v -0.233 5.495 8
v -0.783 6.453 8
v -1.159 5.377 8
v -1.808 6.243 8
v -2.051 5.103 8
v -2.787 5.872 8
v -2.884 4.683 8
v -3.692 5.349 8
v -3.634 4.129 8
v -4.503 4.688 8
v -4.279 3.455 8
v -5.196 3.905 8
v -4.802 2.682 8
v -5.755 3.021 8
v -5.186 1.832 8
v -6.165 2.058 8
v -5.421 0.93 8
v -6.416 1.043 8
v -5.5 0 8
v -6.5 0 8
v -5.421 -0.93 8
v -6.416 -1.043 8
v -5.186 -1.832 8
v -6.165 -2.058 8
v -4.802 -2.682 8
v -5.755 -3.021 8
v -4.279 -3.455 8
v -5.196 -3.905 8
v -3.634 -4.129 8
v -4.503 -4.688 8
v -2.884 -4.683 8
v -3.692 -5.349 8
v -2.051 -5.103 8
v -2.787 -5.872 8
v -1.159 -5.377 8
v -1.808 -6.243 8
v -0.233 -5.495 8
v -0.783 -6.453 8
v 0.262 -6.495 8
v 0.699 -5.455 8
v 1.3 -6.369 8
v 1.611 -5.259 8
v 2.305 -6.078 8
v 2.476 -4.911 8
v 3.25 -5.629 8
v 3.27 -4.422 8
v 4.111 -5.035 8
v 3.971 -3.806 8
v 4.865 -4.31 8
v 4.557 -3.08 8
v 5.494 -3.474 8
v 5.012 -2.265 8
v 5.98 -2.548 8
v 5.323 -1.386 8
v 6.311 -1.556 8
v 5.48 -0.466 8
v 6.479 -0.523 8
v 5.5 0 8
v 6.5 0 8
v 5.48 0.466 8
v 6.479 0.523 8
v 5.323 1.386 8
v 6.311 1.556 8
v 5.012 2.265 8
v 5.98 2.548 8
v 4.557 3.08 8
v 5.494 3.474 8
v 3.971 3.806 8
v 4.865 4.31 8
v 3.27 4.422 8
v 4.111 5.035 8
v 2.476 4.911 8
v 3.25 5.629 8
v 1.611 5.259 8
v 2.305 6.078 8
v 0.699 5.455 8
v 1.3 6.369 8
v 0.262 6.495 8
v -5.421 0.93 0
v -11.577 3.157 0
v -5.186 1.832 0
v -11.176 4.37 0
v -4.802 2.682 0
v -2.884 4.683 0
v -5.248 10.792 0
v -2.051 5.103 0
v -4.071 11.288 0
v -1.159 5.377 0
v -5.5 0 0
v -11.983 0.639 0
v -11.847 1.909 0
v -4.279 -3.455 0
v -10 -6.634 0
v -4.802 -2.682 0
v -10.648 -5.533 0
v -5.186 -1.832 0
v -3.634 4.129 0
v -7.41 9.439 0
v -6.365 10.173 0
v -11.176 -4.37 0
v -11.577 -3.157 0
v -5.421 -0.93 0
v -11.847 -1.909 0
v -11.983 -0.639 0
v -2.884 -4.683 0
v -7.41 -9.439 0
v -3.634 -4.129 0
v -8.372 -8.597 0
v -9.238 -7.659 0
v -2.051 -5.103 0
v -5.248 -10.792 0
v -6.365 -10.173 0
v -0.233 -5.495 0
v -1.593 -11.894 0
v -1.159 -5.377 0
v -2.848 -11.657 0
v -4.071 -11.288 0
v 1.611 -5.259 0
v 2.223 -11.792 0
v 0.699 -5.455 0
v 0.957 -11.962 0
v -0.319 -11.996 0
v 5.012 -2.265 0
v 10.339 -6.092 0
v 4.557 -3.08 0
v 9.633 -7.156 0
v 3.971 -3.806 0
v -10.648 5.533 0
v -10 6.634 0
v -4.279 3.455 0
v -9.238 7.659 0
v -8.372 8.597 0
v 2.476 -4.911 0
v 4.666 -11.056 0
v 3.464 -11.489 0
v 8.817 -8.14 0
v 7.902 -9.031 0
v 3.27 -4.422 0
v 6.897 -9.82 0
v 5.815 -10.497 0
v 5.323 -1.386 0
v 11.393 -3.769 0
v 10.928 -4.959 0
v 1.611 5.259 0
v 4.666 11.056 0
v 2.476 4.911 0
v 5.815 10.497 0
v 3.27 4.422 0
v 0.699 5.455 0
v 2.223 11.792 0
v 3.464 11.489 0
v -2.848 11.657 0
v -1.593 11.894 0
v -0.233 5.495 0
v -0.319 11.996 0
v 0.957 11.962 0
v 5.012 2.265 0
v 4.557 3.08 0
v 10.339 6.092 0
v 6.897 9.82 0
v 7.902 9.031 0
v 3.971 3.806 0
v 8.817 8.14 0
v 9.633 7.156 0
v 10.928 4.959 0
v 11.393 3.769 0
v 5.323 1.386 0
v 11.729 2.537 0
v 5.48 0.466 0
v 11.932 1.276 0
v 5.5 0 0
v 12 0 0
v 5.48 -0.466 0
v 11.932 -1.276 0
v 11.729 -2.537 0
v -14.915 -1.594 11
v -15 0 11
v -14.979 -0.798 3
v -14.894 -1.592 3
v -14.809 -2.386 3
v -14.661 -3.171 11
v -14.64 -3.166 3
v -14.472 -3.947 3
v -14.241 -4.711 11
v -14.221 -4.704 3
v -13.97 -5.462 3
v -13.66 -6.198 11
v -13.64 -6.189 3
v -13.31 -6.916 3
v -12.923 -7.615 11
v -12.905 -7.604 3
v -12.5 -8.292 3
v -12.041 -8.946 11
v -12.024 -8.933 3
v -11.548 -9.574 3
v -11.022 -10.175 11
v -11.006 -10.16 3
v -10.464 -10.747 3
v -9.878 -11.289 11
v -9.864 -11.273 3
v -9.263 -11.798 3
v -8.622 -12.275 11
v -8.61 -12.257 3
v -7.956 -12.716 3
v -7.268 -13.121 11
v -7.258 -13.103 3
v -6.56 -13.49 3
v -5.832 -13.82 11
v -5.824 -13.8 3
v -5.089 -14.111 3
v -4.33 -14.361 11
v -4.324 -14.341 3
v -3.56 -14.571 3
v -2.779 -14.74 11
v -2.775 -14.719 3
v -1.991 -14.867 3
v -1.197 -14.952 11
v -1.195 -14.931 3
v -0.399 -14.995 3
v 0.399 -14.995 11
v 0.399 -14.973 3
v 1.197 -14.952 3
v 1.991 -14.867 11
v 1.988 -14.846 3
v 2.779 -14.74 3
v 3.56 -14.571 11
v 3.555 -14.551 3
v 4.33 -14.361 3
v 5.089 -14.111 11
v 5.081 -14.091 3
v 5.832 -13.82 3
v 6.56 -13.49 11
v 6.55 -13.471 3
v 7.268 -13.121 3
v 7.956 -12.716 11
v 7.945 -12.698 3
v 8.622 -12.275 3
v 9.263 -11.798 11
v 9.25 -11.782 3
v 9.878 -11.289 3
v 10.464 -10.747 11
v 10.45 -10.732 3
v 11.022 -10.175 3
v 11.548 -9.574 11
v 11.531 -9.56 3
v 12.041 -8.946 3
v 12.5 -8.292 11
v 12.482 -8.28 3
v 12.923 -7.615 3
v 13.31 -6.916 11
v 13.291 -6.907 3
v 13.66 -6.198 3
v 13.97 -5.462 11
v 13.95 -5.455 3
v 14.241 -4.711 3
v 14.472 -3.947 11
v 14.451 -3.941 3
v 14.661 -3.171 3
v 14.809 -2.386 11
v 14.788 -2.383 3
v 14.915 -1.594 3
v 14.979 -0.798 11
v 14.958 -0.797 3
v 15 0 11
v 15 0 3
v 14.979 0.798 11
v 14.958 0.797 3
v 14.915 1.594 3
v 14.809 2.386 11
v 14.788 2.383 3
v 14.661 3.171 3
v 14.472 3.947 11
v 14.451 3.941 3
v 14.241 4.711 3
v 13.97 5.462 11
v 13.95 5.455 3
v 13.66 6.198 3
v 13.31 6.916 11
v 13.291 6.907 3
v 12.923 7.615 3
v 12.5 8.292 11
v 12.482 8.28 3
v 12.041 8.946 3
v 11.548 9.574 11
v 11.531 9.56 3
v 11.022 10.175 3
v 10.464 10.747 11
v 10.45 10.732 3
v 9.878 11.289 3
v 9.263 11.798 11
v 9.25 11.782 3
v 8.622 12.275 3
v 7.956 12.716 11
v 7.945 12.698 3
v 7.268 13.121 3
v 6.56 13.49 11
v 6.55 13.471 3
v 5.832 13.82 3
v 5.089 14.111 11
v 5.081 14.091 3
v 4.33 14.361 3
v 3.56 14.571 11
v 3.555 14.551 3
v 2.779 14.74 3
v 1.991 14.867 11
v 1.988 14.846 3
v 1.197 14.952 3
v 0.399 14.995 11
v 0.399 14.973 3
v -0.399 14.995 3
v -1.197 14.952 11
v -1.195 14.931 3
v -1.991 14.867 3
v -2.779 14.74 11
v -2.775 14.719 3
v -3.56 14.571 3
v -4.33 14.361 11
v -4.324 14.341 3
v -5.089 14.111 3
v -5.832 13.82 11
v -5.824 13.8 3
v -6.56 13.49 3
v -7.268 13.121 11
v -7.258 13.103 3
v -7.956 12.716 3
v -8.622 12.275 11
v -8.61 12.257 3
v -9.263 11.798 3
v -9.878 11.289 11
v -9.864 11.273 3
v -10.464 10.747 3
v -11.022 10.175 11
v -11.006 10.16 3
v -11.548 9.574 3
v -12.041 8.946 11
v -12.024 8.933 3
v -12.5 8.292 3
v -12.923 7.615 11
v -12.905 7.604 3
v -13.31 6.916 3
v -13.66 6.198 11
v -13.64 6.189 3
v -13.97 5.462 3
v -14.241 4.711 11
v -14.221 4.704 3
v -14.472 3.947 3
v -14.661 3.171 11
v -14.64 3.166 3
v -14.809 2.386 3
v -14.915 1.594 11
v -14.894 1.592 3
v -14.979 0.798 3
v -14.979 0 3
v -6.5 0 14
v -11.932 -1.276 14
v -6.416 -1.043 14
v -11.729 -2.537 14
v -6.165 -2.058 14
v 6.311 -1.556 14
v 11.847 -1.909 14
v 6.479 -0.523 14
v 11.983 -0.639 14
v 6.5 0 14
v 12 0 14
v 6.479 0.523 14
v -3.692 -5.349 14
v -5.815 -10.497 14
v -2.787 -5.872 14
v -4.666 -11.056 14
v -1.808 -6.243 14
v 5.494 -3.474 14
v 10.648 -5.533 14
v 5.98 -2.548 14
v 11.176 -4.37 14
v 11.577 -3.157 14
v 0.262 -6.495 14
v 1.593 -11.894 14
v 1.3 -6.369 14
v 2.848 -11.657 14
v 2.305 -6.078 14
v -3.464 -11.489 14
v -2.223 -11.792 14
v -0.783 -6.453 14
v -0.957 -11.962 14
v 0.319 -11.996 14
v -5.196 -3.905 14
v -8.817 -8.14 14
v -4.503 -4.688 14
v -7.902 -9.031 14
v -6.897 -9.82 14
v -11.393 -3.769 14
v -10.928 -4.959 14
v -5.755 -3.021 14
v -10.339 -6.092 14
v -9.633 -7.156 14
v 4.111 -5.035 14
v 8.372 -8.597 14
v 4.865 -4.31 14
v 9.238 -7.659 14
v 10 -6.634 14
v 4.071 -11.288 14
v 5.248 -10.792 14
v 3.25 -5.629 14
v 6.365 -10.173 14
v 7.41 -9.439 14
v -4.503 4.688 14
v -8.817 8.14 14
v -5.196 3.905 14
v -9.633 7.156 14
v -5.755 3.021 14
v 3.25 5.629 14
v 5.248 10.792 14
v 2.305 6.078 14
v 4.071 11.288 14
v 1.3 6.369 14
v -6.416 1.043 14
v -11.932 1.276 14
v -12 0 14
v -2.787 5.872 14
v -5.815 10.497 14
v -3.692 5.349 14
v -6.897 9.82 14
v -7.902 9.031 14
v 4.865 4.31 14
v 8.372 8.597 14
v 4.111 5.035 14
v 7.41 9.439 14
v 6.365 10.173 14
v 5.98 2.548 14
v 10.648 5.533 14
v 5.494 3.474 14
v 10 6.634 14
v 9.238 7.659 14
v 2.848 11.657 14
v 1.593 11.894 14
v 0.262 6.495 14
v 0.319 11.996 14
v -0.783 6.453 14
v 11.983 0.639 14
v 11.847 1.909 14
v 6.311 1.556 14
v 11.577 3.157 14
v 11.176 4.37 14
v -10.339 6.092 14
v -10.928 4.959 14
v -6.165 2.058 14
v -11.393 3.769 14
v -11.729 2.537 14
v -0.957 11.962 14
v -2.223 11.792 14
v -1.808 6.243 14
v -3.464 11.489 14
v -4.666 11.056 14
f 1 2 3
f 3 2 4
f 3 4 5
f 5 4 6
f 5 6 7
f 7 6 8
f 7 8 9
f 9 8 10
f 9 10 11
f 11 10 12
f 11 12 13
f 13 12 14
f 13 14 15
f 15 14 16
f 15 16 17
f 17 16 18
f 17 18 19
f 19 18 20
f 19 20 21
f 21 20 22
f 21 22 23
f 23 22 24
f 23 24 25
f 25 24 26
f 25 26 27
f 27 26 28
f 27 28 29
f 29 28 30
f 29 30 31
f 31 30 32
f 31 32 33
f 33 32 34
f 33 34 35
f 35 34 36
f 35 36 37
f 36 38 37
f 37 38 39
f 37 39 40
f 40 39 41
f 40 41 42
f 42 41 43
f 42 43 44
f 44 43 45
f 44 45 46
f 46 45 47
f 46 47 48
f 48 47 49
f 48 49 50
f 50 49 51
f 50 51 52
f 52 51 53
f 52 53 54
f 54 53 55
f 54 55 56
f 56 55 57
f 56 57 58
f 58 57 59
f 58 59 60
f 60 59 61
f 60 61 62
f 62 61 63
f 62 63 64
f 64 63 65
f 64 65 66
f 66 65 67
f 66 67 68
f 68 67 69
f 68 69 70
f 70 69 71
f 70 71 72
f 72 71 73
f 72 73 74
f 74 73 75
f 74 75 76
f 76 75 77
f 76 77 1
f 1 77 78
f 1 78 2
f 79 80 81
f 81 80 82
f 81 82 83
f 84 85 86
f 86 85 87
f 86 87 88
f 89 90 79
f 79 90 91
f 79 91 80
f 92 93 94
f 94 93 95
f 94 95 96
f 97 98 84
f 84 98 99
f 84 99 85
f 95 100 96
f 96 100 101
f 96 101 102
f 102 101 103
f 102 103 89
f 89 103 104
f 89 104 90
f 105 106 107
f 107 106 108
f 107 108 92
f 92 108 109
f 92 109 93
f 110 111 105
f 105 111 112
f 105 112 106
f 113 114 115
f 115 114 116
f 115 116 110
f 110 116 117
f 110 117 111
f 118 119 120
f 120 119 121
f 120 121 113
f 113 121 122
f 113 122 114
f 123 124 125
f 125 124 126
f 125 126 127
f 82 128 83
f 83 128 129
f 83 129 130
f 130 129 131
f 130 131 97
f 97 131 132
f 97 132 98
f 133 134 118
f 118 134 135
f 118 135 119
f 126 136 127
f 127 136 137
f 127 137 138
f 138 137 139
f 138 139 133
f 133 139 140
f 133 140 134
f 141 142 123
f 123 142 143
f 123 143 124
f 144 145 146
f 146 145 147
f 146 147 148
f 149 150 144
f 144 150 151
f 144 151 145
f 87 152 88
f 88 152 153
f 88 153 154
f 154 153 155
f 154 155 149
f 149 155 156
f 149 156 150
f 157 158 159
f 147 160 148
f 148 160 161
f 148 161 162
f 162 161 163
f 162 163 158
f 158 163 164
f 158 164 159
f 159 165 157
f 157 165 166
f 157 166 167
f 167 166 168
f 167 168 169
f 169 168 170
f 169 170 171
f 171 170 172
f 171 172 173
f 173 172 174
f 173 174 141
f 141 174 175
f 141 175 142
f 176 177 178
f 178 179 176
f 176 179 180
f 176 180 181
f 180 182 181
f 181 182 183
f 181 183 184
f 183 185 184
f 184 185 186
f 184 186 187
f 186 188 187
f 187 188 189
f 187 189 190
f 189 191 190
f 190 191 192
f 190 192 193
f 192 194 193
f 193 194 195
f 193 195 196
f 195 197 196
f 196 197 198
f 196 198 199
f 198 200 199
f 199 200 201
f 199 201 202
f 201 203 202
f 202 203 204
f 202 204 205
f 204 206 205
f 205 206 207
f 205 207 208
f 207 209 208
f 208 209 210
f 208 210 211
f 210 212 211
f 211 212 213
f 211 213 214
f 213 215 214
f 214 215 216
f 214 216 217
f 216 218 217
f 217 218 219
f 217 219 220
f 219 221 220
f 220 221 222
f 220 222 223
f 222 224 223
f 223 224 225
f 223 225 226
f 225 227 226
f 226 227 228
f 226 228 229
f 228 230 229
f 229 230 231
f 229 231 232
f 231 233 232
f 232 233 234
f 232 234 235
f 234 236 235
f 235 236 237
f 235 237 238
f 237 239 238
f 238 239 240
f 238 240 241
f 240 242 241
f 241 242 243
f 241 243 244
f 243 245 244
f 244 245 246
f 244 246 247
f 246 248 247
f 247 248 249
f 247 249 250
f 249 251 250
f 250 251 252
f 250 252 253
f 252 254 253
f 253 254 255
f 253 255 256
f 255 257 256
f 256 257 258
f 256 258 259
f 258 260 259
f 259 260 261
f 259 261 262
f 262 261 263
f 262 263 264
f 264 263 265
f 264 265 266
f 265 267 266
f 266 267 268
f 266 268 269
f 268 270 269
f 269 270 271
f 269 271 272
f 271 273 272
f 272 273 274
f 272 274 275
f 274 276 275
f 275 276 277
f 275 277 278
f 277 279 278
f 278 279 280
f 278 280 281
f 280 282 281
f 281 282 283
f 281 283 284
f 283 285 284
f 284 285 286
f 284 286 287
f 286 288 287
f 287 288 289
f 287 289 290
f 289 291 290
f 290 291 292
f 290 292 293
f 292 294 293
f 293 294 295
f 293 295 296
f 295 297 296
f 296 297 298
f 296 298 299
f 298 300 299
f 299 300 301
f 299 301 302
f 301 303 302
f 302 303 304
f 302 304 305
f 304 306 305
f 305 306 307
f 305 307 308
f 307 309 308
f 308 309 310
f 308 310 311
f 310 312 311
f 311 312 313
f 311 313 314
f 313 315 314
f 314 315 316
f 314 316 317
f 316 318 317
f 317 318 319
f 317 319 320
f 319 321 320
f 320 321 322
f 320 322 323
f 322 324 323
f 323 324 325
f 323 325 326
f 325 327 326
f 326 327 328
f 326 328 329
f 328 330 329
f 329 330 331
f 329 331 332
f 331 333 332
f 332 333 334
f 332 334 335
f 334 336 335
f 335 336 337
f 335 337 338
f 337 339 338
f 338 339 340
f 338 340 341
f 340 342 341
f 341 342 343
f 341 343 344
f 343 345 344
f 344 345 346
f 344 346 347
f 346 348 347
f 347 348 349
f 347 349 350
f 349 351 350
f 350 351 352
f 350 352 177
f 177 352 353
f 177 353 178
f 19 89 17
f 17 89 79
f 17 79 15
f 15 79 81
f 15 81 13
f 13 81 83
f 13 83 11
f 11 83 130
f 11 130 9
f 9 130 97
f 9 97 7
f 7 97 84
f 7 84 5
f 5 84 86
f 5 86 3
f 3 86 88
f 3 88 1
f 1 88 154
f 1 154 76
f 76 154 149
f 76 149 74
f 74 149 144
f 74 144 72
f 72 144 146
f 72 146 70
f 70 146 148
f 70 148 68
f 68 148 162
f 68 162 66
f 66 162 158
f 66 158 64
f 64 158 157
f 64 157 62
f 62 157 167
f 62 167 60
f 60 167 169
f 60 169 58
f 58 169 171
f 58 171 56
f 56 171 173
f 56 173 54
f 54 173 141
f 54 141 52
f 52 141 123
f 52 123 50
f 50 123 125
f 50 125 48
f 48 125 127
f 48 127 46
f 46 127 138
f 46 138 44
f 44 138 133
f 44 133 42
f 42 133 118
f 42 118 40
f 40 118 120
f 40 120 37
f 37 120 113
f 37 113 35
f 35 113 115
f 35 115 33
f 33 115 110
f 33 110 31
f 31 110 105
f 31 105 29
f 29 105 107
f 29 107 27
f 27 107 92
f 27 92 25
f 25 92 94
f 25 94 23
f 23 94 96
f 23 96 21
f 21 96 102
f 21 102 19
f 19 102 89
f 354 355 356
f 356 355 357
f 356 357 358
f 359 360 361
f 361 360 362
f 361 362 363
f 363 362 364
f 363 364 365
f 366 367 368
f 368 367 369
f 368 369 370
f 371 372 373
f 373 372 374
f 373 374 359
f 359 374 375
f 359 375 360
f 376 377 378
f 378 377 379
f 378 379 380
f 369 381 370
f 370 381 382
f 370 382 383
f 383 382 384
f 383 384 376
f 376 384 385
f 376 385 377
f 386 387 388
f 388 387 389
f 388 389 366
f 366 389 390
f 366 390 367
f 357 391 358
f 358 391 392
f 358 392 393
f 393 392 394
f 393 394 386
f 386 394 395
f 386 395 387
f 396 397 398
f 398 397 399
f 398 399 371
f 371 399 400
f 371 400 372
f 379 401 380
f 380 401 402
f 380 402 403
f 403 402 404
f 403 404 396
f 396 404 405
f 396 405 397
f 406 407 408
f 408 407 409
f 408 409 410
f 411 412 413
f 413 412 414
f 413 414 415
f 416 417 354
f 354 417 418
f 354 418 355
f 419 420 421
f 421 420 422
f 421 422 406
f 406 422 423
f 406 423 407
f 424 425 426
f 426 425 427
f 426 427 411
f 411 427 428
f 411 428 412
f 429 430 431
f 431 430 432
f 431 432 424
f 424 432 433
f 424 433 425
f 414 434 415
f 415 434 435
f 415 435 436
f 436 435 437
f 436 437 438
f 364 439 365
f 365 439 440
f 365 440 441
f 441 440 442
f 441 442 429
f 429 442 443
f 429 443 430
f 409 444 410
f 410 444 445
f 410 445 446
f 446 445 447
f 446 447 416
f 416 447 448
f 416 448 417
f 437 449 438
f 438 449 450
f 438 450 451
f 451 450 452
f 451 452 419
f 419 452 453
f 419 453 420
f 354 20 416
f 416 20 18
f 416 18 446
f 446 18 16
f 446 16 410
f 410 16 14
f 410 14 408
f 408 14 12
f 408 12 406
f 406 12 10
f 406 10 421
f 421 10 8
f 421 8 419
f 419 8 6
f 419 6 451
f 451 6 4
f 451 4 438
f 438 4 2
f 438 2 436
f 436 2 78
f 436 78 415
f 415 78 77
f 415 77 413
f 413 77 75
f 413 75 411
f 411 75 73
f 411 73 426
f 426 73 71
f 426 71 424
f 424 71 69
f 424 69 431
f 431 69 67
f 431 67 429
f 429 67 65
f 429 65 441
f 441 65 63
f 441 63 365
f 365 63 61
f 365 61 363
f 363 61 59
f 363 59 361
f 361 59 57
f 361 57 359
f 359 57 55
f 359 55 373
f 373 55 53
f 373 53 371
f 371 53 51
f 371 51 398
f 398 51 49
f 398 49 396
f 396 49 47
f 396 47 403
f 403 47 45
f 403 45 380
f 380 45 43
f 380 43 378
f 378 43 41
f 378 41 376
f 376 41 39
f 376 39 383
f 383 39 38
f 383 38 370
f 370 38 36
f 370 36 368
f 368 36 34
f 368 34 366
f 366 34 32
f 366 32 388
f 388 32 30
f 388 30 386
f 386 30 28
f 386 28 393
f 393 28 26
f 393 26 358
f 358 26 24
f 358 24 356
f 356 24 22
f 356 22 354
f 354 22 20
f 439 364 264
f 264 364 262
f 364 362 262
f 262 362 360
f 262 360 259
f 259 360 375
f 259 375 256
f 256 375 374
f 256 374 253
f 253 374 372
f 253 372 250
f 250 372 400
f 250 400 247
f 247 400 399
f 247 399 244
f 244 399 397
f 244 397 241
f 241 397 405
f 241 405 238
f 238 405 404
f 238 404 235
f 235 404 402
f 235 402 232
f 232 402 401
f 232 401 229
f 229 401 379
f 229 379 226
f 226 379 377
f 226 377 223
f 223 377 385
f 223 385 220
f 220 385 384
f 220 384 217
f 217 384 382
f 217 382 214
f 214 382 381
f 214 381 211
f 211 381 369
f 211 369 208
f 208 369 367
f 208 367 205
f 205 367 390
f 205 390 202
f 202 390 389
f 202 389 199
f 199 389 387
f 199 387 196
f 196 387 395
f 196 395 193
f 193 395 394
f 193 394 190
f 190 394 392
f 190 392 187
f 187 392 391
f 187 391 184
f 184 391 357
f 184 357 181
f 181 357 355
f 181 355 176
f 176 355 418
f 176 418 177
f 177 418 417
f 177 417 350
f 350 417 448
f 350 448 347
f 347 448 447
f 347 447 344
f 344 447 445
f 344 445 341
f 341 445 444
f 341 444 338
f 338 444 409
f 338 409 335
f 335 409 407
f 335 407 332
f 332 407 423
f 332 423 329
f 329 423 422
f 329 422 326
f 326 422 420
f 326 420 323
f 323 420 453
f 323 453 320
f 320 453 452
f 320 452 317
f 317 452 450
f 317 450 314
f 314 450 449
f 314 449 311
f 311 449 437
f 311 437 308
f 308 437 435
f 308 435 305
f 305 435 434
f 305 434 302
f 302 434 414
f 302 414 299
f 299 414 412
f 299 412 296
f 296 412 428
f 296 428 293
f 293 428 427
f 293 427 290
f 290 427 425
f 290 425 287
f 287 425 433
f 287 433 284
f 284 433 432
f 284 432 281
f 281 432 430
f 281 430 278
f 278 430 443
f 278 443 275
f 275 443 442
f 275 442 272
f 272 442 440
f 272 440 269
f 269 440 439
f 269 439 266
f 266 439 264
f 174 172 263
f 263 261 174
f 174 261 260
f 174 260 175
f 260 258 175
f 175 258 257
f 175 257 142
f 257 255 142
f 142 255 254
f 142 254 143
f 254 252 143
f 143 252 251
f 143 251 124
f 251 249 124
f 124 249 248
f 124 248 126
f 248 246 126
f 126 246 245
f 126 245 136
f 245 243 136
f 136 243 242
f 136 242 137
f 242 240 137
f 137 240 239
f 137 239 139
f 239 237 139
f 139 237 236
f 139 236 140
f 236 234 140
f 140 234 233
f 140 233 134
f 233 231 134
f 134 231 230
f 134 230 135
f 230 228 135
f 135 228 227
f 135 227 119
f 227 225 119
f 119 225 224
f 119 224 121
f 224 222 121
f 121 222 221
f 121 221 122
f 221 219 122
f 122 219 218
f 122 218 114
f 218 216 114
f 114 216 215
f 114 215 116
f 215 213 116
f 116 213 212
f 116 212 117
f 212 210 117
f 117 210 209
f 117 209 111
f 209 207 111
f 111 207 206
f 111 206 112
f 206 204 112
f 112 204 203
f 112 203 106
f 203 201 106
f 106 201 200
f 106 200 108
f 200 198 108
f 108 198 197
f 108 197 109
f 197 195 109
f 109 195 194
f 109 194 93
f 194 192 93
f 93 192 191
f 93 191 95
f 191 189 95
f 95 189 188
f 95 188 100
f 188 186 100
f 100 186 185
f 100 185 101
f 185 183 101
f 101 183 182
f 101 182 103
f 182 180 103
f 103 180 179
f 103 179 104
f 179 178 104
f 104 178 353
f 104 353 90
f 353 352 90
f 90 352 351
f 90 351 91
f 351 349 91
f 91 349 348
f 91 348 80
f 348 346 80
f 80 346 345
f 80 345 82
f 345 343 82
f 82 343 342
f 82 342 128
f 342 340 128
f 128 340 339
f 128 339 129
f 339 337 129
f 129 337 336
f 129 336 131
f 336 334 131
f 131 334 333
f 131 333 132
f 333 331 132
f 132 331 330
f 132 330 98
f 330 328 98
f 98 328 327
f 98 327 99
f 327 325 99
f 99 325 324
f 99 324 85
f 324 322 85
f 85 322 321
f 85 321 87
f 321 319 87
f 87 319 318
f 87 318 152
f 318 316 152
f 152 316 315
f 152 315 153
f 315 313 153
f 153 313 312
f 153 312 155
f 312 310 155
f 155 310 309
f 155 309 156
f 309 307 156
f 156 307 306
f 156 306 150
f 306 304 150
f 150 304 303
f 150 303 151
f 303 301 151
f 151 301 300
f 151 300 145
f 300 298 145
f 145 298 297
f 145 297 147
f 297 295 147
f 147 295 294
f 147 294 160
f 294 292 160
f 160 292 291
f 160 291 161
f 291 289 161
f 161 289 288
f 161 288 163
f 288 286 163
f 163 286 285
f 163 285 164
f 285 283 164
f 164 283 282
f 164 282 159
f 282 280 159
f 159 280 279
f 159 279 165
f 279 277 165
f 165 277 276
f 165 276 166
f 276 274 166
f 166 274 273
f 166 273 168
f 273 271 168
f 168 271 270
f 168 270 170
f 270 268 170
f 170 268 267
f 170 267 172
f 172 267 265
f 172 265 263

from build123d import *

# Parameters (mm, degrees)
SKETCH1_R           = 15
SKETCH1_R_2         = 5.5
BOSS_EXTRUDE1_DEPTH = 8
SKETCH2_R           = 15
SKETCH2_R_2         = 6.5
BOSS_EXTRUDE2_DEPTH = 6
CHAMFER1_SIZE       = 3


with BuildPart() as part:
    # Sketch1 → Boss-Extrude1 (new body)
    with BuildSketch(Plane.XY):
        Circle(SKETCH1_R)
        Circle(SKETCH1_R_2, mode=Mode.SUBTRACT)
    extrude(amount=BOSS_EXTRUDE1_DEPTH)

    # Sketch2 → Boss-Extrude2 (add)
    with BuildSketch(Plane.XY.offset(8)):
        Circle(SKETCH2_R)
        Circle(SKETCH2_R_2, mode=Mode.SUBTRACT)
    extrude(amount=BOSS_EXTRUDE2_DEPTH)

    # Chamfer1
    chamfer1_edges = [part.edges().sort_by_distance(p)[0] for p in [
        (-15, 0, 14),
        (-15, 0, 0),
    ]]
    chamfer(chamfer1_edges, length=CHAMFER1_SIZE)


solid = part.part
